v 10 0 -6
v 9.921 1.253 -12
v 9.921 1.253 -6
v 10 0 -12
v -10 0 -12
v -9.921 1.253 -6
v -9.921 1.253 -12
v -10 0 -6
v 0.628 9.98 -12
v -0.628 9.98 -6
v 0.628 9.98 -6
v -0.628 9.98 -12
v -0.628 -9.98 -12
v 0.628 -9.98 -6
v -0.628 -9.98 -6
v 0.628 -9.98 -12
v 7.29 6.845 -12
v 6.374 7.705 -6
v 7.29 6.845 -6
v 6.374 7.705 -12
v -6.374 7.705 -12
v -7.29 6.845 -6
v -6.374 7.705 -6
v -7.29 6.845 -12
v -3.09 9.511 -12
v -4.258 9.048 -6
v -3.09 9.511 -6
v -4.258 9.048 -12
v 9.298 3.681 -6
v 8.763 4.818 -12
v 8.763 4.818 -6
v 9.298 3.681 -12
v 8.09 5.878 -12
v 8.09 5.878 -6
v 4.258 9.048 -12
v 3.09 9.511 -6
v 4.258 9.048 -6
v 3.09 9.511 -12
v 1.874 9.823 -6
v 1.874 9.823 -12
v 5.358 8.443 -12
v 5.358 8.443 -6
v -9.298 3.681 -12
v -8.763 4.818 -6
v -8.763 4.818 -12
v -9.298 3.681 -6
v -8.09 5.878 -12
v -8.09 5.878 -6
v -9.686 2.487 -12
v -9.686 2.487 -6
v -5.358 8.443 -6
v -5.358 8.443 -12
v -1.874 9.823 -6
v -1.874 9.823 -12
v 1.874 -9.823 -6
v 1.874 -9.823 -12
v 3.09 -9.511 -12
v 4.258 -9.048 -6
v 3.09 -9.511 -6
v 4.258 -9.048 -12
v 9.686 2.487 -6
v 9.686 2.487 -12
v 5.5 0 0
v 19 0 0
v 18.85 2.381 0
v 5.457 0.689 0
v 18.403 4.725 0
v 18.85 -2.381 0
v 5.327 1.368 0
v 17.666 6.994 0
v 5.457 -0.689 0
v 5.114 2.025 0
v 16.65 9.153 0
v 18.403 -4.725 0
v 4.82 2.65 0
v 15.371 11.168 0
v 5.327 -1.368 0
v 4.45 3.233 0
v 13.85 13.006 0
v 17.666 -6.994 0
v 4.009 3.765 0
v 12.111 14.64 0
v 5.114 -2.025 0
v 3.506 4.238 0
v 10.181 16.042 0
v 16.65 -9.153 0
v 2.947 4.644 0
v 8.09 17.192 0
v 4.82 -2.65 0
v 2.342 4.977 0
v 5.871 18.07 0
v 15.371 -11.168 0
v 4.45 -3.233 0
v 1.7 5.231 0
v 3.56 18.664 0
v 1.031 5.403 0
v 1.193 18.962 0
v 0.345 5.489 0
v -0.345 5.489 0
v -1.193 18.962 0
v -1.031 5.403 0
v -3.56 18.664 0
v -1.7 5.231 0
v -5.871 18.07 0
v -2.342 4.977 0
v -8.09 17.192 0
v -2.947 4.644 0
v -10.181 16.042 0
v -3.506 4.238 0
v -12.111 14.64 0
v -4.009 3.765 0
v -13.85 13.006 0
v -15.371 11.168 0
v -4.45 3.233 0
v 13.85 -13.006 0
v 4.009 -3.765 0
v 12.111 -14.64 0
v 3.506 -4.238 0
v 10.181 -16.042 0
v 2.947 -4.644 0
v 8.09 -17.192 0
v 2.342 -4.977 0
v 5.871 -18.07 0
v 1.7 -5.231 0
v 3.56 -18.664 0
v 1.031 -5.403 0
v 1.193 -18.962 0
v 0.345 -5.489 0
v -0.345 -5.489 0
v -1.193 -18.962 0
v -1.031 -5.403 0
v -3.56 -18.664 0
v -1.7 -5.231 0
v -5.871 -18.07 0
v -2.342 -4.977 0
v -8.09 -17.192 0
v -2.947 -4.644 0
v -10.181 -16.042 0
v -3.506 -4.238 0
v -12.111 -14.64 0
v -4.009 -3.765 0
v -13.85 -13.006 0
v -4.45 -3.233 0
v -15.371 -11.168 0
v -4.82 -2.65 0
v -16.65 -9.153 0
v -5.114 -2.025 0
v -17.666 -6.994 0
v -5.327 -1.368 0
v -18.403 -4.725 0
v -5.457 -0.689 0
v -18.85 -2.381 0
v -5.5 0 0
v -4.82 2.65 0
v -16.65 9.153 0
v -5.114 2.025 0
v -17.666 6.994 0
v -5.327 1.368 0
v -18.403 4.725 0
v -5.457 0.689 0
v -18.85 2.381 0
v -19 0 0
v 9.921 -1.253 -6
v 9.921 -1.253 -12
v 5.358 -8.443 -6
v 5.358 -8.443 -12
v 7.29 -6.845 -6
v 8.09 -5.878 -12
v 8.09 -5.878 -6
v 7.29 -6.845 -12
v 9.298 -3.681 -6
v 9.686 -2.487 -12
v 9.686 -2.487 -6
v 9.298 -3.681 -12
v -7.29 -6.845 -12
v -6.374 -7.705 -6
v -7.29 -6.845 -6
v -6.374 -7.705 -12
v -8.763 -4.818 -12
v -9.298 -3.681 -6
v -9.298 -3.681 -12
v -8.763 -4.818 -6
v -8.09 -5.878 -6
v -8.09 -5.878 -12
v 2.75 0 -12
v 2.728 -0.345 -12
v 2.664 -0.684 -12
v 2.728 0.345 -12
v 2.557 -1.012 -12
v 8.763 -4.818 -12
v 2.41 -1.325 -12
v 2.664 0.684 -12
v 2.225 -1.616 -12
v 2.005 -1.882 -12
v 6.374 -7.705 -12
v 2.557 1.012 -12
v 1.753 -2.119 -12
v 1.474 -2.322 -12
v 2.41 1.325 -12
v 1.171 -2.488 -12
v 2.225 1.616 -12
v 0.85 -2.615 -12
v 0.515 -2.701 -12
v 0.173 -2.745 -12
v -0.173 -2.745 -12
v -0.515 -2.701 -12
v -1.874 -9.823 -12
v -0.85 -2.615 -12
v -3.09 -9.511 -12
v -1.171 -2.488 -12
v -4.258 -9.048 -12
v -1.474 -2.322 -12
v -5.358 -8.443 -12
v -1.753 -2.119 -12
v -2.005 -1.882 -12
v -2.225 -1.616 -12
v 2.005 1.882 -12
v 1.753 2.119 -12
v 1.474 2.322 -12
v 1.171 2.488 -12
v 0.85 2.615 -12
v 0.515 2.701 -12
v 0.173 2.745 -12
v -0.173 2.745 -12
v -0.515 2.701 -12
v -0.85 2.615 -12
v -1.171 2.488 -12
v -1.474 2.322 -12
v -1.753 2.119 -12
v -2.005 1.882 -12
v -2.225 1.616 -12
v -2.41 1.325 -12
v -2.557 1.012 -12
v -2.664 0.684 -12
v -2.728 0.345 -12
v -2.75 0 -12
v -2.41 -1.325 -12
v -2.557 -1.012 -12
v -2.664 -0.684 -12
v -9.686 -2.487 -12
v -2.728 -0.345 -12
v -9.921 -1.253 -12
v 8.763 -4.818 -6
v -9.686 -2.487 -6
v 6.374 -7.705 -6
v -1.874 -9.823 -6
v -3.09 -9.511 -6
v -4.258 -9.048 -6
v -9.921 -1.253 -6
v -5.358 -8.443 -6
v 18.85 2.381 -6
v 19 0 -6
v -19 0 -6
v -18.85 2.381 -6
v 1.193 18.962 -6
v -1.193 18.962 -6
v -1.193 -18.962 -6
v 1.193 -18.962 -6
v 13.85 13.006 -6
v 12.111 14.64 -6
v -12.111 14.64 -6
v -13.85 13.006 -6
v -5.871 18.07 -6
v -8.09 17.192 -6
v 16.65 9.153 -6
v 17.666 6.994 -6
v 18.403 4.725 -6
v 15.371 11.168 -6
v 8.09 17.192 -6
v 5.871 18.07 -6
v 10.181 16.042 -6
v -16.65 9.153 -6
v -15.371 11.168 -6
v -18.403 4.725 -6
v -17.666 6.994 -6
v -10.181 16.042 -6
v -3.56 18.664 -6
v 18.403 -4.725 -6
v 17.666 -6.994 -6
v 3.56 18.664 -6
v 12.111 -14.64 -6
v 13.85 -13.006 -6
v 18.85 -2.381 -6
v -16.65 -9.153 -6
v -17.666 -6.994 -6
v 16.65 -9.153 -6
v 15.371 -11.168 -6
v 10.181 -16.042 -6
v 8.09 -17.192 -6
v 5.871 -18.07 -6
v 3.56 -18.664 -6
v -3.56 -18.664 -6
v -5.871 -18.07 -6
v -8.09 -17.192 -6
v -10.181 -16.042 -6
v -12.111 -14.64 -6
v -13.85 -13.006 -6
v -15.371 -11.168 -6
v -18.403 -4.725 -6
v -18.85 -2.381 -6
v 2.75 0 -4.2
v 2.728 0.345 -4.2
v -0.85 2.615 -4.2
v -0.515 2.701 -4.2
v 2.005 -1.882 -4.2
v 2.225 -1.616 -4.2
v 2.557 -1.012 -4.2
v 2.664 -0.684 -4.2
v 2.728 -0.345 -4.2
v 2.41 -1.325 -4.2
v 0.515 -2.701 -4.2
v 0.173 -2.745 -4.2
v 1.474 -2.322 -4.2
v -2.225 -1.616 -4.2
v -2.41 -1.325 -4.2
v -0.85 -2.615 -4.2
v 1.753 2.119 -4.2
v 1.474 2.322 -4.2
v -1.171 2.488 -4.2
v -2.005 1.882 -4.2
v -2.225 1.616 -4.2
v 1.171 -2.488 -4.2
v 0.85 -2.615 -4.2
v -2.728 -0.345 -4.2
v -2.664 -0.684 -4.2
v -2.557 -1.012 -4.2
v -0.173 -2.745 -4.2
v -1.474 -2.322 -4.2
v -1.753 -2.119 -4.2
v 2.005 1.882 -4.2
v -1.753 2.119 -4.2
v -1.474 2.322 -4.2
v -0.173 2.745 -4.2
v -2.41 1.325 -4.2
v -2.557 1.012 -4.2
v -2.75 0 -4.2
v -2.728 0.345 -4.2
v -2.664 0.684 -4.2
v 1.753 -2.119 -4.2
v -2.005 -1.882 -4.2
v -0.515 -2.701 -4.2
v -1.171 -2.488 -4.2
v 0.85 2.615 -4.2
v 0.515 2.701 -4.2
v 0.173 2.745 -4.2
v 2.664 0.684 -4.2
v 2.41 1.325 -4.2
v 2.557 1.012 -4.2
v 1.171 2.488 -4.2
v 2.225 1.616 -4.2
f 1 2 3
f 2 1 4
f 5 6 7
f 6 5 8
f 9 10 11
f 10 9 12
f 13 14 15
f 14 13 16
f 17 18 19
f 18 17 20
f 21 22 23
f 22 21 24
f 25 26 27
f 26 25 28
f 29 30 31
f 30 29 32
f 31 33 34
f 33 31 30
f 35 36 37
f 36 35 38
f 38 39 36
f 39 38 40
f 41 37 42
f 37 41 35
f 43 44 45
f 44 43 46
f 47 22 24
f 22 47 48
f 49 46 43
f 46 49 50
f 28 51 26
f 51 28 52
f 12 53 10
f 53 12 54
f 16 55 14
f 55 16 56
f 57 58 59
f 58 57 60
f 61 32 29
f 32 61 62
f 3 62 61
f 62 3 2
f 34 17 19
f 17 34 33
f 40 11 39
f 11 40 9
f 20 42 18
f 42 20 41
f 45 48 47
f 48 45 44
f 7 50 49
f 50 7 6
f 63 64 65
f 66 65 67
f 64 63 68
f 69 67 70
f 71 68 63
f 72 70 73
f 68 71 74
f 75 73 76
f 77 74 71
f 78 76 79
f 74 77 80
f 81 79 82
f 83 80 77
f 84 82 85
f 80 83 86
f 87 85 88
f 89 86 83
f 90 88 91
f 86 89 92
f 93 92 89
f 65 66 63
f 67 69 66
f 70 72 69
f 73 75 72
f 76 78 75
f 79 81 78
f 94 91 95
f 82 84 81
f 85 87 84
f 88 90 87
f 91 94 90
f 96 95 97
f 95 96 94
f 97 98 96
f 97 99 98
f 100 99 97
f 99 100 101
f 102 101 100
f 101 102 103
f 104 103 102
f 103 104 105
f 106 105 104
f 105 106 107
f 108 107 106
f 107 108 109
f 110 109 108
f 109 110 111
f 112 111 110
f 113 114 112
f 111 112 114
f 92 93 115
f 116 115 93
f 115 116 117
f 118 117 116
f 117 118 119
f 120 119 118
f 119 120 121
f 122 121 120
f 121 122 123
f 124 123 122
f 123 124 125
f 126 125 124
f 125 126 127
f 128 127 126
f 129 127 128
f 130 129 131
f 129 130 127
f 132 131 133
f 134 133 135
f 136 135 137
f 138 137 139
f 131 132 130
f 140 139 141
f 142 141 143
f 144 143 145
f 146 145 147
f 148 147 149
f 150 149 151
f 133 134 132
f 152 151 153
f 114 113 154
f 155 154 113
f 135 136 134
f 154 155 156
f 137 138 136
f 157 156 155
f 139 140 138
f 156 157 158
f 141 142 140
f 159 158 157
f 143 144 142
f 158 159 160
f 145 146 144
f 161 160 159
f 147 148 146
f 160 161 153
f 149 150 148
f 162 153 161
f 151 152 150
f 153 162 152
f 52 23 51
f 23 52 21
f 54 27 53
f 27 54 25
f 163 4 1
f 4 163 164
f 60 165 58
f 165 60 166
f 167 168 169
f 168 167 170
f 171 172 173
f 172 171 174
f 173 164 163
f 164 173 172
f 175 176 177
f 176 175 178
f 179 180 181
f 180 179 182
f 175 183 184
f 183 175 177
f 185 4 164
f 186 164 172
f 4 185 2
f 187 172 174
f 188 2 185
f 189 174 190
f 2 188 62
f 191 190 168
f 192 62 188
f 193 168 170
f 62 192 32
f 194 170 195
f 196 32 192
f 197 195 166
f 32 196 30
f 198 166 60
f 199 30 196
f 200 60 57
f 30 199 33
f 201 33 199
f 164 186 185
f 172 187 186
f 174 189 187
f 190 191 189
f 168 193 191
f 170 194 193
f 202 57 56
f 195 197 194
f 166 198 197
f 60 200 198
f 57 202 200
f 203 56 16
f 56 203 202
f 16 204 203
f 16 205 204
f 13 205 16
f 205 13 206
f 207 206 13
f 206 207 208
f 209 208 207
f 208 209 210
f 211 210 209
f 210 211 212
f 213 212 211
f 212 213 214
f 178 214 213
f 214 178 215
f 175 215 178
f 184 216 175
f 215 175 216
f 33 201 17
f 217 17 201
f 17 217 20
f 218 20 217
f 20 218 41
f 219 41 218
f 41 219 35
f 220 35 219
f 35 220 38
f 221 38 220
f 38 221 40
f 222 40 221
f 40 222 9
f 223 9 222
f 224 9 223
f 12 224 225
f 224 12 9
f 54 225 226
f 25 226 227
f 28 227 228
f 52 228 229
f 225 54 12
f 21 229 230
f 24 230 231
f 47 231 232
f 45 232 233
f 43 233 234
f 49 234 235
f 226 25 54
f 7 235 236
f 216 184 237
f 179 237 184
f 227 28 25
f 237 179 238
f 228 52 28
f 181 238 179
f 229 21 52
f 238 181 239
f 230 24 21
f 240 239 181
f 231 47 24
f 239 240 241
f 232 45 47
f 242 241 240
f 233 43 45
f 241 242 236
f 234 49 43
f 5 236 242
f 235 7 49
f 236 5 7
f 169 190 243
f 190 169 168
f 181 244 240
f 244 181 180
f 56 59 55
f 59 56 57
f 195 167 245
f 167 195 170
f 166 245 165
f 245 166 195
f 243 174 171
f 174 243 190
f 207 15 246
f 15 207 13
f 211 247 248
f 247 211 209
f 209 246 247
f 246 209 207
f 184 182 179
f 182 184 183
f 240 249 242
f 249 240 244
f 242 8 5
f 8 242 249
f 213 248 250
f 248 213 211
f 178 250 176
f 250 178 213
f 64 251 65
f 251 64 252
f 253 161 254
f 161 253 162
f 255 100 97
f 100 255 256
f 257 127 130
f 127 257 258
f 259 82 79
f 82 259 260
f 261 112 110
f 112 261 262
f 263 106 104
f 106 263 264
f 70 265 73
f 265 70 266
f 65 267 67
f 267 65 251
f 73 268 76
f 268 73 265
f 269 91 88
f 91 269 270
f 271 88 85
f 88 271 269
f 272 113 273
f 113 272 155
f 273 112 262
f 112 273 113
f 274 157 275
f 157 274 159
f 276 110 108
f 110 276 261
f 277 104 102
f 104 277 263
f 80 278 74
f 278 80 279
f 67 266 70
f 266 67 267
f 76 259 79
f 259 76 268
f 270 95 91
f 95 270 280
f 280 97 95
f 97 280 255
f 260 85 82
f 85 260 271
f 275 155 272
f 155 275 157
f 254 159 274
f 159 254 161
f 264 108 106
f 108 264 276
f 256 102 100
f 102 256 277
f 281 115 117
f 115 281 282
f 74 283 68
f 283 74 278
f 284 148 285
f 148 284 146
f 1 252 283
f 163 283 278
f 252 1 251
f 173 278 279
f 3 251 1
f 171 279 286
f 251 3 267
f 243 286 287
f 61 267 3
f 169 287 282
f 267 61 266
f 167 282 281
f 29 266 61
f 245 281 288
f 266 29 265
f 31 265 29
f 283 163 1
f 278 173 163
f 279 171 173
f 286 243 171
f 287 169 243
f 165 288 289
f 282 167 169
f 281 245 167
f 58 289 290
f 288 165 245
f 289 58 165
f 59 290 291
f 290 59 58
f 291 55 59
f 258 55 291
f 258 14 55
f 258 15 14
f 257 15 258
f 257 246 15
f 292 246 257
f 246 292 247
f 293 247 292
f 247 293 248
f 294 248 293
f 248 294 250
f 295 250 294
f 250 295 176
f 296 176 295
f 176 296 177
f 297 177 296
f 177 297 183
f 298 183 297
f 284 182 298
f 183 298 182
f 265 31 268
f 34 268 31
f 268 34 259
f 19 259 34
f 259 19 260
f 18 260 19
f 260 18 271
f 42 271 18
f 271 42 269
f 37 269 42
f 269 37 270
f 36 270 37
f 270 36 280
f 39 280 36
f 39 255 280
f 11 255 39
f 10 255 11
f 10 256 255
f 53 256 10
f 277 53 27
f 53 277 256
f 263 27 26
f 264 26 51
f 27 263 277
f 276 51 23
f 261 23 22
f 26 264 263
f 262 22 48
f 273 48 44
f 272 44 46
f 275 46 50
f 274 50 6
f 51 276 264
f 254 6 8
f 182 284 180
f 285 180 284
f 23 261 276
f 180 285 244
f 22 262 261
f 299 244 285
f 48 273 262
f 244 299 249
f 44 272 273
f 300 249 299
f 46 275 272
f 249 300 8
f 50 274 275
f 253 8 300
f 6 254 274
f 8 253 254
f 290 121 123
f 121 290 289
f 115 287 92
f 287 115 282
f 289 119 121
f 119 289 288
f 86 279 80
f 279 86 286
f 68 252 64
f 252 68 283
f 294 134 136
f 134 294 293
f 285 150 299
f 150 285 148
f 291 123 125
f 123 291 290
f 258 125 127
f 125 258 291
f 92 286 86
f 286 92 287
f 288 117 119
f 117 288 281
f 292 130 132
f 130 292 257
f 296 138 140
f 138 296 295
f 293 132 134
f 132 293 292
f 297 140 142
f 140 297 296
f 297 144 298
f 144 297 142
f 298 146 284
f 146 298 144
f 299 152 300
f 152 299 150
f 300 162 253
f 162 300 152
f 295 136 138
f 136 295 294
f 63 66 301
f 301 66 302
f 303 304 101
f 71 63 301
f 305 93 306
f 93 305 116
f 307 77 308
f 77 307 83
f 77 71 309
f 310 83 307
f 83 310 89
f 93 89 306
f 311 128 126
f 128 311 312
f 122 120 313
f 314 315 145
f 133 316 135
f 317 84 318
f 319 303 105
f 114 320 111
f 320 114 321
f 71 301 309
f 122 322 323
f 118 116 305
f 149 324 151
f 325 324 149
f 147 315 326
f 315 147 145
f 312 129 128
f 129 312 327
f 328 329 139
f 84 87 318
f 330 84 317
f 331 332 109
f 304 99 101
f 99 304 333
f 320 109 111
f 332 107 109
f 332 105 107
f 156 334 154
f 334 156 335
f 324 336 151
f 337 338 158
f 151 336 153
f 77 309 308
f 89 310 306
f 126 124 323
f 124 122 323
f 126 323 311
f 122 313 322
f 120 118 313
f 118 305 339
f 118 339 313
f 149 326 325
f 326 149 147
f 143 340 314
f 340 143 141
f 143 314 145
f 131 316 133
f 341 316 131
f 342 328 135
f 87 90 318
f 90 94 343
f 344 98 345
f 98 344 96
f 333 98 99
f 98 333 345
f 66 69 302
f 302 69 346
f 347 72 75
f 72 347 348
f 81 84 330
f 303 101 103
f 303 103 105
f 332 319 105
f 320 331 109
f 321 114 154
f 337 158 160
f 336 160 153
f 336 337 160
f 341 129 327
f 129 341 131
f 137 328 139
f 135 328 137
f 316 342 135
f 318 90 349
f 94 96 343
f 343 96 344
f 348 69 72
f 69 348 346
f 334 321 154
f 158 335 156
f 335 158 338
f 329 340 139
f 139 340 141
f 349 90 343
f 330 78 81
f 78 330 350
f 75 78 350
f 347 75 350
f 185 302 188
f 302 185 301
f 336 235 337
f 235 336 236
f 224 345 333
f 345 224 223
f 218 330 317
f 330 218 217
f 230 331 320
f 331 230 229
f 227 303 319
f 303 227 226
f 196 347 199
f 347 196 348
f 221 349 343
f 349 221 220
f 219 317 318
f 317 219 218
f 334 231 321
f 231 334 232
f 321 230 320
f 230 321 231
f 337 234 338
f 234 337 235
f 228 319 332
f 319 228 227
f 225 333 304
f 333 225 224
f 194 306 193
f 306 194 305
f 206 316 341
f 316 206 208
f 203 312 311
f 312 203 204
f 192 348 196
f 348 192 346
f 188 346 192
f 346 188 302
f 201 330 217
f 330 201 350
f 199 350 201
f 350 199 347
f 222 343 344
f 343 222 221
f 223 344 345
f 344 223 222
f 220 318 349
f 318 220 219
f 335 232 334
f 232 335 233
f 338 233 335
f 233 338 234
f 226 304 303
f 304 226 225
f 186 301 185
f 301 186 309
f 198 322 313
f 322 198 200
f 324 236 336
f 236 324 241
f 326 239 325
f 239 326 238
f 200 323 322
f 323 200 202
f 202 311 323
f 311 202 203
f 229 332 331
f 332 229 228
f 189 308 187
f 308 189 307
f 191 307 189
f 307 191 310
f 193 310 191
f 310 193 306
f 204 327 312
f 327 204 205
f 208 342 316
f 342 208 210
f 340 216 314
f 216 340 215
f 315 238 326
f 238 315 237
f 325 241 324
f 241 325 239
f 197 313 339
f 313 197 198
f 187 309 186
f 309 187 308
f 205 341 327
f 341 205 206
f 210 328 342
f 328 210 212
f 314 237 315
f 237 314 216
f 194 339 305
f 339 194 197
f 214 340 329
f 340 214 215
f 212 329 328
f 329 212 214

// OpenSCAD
$fn = 50;


difference() {
	union() {
		translate(v = [0, 0, -12.0000000000]) {
			cylinder(h = 12, r = 10.0000000000);
		}
		translate(v = [0, 0, -6.0000000000]) {
			cylinder(h = 6, r = 19.0000000000);
		}
	}
	union() {
		translate(v = [0, 0, 0]) {
			rotate(a = [0, 0, 0]) {
				difference() {
					union() {
						#translate(v = [0, 0, -12.0000000000]) {
							cylinder(h = 12, r = 2.2500000000);
						}
						#translate(v = [0, 0, -4.2000000000]) {
							cylinder(h = 4.2000000000, r = 10.0000000000, r1 = 2.7500000000, r2 = 5.5000000000);
						}
						#translate(v = [0, 0, -12.0000000000]) {
							cylinder(h = 12, r = 2.7500000000);
						}
						#translate(v = [0, 0, -12.0000000000]) {
							cylinder(h = 12, r = 2.2500000000);
						}
					}
					union();
				}
			}
		}
	}
}
